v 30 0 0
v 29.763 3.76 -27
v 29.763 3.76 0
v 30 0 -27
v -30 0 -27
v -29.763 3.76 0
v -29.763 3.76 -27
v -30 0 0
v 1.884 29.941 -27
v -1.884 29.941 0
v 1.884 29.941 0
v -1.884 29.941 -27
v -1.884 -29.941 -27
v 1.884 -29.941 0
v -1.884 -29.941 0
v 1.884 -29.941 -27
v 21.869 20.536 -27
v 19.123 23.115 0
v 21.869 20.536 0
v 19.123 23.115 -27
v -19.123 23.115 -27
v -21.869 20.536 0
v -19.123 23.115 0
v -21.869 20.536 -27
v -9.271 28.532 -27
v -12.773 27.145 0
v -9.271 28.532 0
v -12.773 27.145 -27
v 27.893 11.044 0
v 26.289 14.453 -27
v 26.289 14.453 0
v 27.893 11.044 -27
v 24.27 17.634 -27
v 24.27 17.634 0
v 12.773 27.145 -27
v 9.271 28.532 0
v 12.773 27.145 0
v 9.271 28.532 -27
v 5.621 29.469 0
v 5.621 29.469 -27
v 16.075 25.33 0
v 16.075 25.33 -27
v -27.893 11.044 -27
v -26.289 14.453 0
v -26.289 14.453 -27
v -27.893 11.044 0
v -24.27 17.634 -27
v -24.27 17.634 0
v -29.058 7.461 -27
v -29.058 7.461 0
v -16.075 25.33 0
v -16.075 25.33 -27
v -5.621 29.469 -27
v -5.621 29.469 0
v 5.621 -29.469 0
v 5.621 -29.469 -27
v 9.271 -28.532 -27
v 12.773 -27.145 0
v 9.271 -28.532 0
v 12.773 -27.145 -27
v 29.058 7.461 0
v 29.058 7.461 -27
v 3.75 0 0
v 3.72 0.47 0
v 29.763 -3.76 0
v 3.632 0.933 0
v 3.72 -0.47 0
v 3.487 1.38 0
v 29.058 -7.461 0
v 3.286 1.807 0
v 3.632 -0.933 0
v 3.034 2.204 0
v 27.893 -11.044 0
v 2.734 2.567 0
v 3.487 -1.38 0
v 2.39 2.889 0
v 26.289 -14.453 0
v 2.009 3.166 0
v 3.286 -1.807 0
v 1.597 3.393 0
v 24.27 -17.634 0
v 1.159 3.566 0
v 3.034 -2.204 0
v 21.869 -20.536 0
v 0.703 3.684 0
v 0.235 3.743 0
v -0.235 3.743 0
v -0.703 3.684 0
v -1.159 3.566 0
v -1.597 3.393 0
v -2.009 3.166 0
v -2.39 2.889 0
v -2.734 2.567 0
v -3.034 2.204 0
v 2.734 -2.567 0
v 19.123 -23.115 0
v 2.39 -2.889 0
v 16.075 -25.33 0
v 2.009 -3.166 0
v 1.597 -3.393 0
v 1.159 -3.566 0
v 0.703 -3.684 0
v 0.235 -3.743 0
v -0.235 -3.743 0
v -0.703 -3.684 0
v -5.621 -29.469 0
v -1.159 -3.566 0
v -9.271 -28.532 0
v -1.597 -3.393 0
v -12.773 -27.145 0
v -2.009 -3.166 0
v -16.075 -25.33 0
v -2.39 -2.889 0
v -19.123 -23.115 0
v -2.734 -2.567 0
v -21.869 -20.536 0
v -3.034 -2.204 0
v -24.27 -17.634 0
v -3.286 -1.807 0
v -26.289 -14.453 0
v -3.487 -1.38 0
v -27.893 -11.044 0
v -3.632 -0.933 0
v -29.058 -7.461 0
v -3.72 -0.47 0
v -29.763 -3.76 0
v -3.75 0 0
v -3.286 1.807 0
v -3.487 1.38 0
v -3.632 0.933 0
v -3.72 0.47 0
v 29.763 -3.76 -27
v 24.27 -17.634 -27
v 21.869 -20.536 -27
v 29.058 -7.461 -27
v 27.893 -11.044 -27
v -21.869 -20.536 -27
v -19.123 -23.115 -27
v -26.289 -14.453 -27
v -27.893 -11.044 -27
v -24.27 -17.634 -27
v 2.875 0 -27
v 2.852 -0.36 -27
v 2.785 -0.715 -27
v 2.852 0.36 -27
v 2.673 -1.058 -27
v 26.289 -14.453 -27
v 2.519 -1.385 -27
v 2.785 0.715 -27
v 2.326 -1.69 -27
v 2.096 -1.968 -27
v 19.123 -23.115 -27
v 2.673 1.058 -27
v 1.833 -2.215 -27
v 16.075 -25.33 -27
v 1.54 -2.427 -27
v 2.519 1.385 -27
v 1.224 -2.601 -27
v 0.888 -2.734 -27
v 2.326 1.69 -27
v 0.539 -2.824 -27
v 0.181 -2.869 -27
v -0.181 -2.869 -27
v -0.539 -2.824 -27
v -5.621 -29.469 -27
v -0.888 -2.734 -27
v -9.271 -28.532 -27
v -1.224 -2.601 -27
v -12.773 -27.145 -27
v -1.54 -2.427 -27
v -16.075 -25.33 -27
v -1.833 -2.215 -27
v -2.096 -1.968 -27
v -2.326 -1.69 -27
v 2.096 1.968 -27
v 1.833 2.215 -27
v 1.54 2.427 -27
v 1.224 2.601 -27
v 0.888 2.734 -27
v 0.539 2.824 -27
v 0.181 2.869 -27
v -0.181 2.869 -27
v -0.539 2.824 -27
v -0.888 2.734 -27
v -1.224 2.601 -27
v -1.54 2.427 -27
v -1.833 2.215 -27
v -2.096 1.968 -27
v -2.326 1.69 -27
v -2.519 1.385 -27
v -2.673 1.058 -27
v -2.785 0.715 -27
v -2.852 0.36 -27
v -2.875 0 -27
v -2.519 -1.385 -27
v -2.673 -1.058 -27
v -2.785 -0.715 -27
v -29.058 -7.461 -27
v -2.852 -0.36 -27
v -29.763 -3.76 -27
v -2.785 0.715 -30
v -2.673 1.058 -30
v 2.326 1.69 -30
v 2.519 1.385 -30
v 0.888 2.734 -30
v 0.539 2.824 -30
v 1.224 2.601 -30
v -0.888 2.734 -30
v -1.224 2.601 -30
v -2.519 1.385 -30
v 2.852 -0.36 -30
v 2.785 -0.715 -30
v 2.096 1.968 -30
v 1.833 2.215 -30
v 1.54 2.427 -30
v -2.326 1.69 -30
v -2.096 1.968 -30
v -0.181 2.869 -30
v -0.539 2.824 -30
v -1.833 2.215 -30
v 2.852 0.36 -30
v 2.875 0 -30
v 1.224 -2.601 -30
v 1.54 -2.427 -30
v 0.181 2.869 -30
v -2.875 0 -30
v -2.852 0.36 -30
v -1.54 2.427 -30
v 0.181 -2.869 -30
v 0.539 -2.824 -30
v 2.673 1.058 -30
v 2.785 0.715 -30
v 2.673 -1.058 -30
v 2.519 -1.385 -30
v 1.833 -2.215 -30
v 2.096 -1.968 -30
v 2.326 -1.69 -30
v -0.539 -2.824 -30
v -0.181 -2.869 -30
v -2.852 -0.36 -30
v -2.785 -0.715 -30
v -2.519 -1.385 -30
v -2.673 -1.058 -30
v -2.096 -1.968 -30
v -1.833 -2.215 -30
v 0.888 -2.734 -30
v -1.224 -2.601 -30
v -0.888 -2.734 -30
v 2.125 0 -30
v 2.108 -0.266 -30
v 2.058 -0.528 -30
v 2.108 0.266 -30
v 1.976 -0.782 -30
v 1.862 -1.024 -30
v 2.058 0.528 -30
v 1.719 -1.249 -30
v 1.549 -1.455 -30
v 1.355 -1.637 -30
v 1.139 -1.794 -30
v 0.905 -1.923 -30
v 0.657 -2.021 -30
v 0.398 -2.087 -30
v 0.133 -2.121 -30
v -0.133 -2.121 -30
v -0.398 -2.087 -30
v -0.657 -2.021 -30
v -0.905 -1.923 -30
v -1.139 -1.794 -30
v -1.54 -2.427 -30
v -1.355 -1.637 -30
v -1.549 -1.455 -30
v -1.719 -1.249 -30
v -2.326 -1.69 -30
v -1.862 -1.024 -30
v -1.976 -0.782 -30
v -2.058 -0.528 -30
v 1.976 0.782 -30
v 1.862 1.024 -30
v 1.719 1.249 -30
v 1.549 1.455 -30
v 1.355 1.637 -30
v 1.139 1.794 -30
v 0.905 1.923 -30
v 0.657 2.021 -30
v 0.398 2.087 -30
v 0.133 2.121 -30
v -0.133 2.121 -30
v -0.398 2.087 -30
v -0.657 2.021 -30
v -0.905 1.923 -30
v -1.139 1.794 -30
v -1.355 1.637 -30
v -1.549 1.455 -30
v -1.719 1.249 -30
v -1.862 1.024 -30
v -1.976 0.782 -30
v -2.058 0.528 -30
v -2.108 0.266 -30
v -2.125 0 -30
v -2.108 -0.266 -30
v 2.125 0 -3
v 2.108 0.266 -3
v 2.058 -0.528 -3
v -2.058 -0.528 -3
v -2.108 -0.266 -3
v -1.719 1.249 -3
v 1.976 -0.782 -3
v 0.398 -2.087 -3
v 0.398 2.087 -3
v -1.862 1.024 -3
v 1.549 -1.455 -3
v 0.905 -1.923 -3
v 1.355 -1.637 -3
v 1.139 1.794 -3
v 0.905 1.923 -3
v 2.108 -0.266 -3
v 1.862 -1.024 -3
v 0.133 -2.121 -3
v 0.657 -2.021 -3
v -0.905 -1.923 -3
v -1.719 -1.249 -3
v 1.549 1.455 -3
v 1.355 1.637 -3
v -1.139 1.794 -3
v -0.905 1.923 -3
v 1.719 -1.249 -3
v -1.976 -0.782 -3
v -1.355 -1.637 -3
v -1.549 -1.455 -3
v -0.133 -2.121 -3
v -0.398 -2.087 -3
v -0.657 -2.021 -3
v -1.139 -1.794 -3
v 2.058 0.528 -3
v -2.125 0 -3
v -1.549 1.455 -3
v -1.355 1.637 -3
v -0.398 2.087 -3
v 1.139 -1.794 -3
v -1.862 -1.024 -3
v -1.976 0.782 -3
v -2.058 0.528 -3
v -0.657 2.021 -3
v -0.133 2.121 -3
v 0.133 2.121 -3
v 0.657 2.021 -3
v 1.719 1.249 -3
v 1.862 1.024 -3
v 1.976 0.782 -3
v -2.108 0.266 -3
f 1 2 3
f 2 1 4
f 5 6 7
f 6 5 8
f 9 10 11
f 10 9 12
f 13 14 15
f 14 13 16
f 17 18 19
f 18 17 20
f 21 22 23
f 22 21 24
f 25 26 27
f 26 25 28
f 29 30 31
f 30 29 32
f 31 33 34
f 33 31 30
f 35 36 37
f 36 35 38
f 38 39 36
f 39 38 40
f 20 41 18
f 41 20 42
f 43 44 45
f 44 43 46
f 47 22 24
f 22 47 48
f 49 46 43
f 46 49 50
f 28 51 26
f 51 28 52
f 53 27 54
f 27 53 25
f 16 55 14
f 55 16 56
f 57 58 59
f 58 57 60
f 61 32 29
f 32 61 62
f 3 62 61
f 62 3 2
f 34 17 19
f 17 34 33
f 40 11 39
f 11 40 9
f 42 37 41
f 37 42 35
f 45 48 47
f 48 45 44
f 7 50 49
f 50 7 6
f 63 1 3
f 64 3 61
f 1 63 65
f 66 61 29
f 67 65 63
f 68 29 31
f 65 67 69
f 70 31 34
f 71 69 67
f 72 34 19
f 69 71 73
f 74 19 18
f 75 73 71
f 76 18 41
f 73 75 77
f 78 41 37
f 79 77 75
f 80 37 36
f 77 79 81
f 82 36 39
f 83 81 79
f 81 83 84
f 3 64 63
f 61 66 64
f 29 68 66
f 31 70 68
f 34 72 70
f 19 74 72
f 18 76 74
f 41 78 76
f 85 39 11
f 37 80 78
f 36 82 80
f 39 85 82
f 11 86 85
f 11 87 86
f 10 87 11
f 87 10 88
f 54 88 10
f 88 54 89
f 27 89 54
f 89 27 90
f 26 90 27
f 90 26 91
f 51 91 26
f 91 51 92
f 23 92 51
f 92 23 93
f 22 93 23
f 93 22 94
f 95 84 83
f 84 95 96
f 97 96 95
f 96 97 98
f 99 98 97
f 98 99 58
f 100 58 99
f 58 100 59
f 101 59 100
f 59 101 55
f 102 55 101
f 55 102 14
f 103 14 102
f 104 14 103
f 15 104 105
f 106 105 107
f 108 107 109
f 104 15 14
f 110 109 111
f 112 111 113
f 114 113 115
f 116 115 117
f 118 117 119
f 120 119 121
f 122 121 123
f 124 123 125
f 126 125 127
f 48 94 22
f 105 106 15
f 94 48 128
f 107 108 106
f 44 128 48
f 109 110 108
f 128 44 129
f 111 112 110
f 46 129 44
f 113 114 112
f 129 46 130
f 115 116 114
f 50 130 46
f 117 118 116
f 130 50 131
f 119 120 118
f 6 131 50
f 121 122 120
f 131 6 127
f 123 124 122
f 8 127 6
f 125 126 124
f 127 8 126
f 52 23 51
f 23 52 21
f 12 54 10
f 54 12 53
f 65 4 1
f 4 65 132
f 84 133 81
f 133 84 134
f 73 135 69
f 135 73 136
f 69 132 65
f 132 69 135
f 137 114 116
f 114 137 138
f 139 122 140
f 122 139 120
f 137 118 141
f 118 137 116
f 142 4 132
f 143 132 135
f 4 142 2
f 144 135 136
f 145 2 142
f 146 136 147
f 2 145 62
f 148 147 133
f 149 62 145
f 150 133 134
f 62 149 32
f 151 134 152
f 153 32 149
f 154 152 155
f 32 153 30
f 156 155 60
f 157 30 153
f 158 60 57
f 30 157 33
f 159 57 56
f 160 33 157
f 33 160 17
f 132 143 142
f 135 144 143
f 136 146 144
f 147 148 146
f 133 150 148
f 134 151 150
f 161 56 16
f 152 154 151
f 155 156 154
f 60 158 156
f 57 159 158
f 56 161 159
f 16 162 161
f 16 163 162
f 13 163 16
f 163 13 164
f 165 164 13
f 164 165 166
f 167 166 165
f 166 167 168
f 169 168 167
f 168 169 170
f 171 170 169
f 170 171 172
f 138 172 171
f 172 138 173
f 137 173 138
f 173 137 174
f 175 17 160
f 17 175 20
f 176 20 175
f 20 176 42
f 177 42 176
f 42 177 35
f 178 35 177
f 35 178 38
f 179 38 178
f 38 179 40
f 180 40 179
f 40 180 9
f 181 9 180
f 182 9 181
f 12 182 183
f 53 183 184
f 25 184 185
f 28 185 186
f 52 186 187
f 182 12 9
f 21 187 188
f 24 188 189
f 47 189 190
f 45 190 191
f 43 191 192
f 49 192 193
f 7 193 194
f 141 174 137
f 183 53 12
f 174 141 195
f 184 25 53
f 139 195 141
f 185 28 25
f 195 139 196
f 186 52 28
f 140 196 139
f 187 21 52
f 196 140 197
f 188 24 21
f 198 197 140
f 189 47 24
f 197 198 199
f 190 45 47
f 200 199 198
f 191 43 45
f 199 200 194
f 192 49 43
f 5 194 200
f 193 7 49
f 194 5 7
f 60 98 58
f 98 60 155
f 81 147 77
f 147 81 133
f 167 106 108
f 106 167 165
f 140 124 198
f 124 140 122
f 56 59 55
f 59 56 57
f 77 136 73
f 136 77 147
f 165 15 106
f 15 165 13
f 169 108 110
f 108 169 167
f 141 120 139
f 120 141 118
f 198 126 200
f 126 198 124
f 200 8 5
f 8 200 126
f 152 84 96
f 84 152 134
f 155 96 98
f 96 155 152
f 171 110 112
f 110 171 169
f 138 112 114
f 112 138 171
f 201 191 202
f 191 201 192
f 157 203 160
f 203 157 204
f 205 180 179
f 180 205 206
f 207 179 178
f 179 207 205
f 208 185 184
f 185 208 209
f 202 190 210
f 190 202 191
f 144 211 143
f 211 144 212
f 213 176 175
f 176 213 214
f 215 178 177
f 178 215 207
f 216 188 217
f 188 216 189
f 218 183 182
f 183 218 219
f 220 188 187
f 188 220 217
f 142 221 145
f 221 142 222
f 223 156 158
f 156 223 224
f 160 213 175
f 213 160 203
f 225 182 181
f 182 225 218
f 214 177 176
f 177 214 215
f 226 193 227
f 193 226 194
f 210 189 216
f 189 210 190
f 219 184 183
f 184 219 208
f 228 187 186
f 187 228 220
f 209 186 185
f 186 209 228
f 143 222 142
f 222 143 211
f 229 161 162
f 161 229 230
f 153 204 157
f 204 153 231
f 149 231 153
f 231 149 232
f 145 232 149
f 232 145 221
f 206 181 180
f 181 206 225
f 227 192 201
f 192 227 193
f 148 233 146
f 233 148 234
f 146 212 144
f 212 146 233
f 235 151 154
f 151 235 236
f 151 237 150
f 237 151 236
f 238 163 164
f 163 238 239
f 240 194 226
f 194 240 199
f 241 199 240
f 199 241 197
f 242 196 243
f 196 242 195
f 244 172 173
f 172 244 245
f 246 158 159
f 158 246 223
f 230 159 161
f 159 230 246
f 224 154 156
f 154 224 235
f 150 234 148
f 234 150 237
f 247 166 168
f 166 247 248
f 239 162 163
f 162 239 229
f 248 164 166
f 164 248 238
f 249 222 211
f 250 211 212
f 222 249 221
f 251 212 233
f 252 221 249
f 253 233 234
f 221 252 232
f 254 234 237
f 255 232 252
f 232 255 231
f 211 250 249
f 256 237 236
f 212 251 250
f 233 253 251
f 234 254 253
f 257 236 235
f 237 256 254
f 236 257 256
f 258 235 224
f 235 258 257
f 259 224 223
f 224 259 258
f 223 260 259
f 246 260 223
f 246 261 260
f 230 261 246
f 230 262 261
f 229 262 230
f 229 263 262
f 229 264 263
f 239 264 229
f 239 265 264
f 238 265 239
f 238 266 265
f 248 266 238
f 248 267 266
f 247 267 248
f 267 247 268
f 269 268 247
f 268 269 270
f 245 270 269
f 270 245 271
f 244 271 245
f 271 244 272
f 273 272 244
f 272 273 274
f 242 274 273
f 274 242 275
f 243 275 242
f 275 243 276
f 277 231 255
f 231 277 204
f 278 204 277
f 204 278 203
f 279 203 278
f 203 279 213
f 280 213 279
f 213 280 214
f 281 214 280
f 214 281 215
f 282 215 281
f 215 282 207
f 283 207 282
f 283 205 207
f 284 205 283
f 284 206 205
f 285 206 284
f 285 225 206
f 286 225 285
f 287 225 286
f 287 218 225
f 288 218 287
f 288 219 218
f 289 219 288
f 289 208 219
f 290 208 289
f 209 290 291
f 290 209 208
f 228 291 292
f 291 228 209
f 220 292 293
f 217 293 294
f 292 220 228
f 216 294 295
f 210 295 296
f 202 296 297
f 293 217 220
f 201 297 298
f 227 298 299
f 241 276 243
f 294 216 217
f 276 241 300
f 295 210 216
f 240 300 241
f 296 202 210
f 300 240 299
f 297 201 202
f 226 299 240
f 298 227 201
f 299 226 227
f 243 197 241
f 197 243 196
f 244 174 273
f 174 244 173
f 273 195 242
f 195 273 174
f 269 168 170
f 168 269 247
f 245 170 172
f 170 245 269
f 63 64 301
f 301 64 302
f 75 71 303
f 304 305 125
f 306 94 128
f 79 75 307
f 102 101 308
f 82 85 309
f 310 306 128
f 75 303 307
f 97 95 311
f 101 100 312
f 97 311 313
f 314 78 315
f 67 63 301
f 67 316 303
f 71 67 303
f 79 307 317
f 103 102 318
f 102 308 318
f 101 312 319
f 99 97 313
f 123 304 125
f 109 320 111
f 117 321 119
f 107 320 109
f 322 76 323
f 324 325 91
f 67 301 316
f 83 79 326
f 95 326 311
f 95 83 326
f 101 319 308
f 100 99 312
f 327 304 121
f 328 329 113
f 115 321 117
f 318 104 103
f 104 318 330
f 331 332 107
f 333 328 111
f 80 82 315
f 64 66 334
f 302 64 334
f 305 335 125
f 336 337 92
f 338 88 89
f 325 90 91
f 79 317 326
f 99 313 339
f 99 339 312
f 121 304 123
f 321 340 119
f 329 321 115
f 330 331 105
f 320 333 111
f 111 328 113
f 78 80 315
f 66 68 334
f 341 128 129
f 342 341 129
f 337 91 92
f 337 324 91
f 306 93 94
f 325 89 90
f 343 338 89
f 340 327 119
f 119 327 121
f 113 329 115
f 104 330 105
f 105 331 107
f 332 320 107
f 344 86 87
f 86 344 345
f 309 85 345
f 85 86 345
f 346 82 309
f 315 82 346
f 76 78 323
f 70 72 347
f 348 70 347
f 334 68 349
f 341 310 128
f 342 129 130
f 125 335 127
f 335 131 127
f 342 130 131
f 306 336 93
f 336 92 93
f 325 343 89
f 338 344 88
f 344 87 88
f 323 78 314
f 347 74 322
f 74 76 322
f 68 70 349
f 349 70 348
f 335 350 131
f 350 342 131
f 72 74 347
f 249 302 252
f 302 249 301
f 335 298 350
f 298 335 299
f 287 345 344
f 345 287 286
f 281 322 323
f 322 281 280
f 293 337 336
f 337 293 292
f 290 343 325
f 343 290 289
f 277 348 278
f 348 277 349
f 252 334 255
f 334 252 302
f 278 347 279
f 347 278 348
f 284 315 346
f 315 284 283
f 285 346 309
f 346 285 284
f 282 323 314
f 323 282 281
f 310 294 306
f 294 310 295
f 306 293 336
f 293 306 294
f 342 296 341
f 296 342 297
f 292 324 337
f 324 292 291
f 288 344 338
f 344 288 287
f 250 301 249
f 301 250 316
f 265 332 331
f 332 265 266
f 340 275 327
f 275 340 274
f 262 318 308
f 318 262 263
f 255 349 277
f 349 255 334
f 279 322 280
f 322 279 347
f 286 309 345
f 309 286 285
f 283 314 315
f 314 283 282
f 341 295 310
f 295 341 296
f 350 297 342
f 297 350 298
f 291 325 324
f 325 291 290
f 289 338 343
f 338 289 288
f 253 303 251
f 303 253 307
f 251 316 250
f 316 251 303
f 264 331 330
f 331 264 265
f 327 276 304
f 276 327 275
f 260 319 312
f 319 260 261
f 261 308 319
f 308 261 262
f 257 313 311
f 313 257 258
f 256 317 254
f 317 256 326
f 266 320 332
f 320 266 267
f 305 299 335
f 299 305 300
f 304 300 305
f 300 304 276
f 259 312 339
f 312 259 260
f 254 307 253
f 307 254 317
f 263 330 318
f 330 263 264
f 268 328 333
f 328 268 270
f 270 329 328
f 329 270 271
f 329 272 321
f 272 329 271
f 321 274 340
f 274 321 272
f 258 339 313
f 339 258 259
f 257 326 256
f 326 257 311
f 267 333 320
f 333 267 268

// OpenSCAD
$fn = 50;

difference() {
	union() {
		translate(v = [0, 0, -27.0]) {
			cylinder(h = 27, r = 30.0);
		}
		#translate(v = [0, 0, -30.0]) {
			cylinder(h = 30, r = 2.875);
		}
	}
	union() {
		translate(v = [0, 0, 0]) {
			rotate(a = [0, 0, 0]) {
				difference() {
					union() {
						translate(v = [0, 0, -30.0]) {
							cylinder(h = 30, r = 2.0);
						}
						translate(v = [0, 0, -3]) {
							cylinder(h = 3, r1 = 2.125, r2 = 3.75);
						}
						translate(v = [0, 0, -30.0]) {
							cylinder(h = 30, r = 2.125);
						}
						translate(v = [0, 0, -30.0]) {
							cylinder(h = 30, r = 2.0);
						}
					}
					union();
				}
			}
		}
	}
}
